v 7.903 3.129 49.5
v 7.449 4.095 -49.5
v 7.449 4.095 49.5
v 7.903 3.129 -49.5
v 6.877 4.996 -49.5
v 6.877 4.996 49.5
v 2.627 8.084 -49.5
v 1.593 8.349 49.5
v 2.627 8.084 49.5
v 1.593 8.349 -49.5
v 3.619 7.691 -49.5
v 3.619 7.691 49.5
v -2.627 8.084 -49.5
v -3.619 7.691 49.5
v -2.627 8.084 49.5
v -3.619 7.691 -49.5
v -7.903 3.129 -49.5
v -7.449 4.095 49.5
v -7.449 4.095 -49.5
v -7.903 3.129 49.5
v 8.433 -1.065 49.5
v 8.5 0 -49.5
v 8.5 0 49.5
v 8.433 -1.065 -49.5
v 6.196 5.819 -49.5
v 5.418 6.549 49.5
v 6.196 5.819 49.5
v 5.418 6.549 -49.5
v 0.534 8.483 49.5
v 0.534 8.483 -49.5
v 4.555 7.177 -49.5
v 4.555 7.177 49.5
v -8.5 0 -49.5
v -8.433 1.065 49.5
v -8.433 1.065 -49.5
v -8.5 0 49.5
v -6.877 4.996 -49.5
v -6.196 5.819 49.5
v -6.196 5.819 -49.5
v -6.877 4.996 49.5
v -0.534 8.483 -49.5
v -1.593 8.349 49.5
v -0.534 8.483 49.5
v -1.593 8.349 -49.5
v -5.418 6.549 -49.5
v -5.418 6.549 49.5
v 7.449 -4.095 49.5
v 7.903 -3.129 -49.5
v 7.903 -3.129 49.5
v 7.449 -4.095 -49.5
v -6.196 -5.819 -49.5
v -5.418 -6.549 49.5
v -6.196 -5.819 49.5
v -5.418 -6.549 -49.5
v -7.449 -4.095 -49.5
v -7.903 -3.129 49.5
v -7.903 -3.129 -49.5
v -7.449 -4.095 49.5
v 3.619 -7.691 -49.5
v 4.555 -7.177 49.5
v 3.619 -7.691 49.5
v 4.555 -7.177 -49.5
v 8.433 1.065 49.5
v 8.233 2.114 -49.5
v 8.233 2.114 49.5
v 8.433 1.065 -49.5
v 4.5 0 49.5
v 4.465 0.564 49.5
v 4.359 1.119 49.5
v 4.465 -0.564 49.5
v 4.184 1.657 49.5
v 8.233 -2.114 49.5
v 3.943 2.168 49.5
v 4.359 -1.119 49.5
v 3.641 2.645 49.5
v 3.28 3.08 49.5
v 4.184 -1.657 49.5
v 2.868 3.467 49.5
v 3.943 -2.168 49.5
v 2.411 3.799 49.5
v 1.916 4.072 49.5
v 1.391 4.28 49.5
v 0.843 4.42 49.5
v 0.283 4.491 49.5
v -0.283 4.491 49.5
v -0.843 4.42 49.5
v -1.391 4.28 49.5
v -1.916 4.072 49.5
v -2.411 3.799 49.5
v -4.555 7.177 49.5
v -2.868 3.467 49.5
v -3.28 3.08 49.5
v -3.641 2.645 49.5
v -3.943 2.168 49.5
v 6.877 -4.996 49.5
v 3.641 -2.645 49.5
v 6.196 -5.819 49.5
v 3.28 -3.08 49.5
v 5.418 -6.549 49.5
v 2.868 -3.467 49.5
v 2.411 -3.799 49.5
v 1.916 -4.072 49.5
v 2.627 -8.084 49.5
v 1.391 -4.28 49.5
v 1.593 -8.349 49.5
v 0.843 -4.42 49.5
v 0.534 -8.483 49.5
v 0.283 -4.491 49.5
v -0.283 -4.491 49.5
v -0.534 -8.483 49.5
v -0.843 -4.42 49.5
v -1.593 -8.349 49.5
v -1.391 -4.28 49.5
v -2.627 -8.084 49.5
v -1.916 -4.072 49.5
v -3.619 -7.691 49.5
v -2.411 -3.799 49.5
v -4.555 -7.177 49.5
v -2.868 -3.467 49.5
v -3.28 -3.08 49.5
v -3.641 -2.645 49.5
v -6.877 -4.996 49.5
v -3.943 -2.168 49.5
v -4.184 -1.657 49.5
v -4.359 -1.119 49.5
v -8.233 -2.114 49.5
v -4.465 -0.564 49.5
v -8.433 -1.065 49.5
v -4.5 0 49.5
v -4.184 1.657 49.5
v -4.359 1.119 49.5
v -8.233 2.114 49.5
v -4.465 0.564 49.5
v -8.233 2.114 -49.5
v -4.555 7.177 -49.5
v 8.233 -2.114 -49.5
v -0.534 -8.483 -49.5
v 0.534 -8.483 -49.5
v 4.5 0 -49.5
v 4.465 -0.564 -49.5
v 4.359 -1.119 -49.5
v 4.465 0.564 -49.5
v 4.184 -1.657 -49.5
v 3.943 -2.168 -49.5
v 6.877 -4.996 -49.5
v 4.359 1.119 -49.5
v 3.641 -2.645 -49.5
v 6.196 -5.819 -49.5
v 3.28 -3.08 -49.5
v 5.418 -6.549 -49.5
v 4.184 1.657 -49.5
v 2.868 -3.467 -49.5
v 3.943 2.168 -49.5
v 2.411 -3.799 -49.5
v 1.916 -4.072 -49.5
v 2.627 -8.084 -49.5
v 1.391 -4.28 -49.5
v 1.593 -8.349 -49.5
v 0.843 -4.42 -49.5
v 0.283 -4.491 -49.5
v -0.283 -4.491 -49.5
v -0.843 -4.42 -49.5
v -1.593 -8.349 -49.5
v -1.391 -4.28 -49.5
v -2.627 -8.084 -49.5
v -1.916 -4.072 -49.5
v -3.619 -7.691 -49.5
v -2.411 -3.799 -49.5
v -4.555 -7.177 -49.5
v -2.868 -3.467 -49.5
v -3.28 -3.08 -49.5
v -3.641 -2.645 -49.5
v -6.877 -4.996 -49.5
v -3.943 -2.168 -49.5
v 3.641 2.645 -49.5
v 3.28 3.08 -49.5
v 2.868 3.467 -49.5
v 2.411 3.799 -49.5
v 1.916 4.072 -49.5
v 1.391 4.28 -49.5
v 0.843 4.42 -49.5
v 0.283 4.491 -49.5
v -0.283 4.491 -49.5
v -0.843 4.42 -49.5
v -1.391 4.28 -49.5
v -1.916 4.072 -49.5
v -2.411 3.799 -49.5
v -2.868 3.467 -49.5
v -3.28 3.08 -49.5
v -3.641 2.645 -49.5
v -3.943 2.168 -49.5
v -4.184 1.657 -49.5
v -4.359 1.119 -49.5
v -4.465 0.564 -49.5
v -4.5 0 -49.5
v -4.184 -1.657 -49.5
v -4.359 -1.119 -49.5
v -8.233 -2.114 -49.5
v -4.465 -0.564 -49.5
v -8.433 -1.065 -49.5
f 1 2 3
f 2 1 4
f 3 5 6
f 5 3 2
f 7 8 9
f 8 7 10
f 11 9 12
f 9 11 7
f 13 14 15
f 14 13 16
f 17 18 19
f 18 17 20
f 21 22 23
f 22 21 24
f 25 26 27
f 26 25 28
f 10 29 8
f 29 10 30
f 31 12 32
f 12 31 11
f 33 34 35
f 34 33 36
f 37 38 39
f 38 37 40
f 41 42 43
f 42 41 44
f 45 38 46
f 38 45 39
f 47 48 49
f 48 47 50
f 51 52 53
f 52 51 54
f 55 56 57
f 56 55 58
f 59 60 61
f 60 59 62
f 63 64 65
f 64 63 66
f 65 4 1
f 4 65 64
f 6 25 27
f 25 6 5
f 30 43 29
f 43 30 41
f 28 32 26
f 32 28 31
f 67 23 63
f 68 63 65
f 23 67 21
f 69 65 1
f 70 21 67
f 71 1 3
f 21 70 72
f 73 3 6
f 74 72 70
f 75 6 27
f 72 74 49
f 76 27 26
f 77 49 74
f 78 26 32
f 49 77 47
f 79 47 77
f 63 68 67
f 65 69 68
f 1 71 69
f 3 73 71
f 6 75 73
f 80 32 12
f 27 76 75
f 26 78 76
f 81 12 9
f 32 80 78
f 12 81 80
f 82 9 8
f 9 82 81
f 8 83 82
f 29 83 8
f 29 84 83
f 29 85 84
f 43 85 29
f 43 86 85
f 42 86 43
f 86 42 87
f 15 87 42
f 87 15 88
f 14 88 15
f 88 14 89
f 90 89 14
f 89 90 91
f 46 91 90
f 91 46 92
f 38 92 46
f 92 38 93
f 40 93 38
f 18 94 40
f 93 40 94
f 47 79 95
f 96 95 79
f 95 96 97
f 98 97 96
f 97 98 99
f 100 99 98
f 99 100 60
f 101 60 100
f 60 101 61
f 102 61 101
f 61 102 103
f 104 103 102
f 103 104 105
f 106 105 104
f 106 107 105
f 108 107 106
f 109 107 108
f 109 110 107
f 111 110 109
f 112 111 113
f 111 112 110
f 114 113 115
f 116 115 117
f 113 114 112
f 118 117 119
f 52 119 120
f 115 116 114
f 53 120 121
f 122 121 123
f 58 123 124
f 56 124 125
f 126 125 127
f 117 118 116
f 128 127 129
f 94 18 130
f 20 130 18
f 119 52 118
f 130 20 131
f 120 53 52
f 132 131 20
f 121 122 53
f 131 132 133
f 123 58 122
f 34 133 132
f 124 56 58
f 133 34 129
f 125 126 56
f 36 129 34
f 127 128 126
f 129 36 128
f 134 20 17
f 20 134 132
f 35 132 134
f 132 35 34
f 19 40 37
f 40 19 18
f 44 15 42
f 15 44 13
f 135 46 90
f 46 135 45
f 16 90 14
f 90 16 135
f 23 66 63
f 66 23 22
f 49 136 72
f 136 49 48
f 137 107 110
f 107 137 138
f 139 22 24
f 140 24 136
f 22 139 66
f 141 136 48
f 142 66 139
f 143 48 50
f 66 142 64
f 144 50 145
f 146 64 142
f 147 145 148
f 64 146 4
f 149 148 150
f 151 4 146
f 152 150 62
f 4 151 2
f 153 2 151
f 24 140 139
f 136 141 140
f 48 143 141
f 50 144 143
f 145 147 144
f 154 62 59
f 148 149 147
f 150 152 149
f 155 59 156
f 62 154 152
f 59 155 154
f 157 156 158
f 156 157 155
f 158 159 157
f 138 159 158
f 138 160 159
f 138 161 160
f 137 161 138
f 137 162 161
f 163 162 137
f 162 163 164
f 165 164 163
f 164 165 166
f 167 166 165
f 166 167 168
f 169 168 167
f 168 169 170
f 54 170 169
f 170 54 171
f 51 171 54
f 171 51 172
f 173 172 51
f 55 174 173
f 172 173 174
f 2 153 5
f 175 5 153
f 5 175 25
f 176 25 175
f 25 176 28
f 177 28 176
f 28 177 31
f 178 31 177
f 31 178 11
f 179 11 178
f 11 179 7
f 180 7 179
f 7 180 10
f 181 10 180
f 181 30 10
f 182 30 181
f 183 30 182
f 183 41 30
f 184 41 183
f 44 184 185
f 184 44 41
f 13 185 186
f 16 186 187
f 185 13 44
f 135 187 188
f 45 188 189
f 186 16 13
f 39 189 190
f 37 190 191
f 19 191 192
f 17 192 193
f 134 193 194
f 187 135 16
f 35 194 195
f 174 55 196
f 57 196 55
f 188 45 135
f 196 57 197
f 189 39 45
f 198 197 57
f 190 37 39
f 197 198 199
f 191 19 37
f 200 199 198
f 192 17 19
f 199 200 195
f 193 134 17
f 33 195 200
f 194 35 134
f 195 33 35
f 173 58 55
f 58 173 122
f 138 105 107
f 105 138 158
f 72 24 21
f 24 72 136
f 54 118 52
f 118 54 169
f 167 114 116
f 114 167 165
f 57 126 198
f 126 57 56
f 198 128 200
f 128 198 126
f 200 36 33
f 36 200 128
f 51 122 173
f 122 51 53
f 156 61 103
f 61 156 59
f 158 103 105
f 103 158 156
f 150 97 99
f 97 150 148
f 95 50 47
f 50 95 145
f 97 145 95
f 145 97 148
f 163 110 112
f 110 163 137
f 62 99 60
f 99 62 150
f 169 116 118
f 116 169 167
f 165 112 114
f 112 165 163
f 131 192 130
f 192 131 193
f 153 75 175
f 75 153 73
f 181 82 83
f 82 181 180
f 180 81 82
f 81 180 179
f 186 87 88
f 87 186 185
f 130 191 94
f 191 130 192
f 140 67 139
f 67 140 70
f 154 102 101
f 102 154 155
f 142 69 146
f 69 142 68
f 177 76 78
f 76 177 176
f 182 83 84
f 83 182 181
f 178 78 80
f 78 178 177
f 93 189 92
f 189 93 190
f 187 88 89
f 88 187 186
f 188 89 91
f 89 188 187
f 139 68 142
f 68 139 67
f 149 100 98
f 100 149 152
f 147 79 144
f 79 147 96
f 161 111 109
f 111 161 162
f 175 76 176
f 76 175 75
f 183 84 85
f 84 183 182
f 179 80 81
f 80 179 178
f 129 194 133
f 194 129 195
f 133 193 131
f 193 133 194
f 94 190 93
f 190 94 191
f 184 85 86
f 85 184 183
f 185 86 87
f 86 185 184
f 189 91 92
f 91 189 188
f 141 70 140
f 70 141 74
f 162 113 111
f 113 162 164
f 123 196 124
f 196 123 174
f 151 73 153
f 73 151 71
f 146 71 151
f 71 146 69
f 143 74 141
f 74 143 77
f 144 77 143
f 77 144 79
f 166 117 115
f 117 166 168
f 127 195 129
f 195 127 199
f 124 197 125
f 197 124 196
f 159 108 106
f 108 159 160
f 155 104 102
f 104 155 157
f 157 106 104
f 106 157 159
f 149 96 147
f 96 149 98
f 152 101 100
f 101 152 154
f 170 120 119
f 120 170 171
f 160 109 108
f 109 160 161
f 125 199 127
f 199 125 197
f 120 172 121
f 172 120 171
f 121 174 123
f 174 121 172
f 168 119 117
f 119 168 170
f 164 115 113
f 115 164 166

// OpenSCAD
$fn = 50;


difference() {
	union() {
		translate(v = [0, 0, -49.5000000000]) {
			cylinder(h = 99, r = 8.5000000000);
		}
	}
	union() {
		translate(v = [0, 0, -100.0000000000]) {
			cylinder(h = 200, r = 4.5000000000);
		}
	}
}
